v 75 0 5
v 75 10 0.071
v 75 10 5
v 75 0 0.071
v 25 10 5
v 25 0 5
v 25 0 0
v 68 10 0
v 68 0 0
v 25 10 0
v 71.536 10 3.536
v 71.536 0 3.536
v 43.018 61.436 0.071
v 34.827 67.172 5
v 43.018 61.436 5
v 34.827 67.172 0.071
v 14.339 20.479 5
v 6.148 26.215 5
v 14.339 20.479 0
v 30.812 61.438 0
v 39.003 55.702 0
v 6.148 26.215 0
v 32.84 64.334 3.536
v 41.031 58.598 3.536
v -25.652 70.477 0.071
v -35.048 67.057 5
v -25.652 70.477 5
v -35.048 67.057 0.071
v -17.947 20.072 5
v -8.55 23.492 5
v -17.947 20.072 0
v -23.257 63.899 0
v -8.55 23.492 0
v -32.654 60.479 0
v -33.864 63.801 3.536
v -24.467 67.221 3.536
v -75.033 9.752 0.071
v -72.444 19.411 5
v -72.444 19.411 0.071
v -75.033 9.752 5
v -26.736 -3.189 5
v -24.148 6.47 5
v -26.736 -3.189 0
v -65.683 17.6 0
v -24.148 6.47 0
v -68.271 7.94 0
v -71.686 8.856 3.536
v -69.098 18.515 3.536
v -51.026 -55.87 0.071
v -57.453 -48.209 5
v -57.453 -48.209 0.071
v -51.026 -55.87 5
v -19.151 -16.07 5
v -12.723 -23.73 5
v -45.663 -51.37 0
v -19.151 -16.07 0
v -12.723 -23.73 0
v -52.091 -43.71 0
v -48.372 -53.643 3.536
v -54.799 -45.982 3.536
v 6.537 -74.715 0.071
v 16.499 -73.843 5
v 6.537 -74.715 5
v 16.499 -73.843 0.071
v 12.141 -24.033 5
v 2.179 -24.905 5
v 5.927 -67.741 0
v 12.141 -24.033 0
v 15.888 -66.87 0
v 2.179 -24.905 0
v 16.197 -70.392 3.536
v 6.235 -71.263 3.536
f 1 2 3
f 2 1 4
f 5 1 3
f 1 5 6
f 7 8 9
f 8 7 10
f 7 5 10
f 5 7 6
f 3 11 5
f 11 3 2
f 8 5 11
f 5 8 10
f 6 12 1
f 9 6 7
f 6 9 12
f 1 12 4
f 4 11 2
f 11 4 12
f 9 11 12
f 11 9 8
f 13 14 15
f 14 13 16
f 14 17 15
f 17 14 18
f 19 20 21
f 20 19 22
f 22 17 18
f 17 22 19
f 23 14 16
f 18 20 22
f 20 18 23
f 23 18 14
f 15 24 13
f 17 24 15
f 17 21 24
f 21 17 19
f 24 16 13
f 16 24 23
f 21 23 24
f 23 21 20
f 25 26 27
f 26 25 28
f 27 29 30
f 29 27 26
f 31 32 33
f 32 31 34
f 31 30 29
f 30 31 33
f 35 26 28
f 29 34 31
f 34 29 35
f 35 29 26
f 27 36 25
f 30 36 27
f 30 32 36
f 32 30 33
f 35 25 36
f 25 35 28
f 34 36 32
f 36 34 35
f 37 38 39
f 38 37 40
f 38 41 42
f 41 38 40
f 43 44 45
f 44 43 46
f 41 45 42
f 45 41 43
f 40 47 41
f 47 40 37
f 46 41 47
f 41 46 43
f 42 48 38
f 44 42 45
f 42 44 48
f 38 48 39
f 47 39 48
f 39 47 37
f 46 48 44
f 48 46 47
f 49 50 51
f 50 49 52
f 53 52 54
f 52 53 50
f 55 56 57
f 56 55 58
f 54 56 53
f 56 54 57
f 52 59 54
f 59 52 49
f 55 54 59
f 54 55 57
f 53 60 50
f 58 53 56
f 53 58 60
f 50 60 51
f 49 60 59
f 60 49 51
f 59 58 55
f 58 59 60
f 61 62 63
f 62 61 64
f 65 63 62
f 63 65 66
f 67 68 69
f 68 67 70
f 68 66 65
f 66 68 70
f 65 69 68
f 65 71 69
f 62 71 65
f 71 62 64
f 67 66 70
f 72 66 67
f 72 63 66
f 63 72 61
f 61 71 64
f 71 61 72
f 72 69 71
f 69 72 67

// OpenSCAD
// Parameters for the rectangular bar
bar_length = 50; // Length of the bar
bar_width = 10;  // Width of the bar
bar_thickness = 5; // Thickness of the bar
bevel_length = 7; // Enhanced length of the beveled end for more pronounced beveling
spacing_offset = 25; // Increased spacing between bars for less compact arrangement
rotation_offset = 55; // Adjusted rotation angle for correct orientation

// Function to create a single rectangular bar with a beveled end
module rectangular_bar() {
    difference() {
        // Main rectangular prism
        cube([bar_length, bar_width, bar_thickness]);
        // Beveled end
        translate([bar_length - bevel_length, 0, 0])
            rotate([0, 45, 0])
            cube([bevel_length * sqrt(2), bar_width, bar_thickness]);
    }
}

// Positioning the six rectangular bars in the same vertical layer
module layer_1() {
    for (i = [0:5]) {
        rotate([0, 0, i * rotation_offset]) // Adjusted rotation angle for correct orientation
            translate([spacing_offset, 0, 0]) // Increased spacing between bars
            rectangular_bar();
    }
}

// Generate the model
layer_1();
